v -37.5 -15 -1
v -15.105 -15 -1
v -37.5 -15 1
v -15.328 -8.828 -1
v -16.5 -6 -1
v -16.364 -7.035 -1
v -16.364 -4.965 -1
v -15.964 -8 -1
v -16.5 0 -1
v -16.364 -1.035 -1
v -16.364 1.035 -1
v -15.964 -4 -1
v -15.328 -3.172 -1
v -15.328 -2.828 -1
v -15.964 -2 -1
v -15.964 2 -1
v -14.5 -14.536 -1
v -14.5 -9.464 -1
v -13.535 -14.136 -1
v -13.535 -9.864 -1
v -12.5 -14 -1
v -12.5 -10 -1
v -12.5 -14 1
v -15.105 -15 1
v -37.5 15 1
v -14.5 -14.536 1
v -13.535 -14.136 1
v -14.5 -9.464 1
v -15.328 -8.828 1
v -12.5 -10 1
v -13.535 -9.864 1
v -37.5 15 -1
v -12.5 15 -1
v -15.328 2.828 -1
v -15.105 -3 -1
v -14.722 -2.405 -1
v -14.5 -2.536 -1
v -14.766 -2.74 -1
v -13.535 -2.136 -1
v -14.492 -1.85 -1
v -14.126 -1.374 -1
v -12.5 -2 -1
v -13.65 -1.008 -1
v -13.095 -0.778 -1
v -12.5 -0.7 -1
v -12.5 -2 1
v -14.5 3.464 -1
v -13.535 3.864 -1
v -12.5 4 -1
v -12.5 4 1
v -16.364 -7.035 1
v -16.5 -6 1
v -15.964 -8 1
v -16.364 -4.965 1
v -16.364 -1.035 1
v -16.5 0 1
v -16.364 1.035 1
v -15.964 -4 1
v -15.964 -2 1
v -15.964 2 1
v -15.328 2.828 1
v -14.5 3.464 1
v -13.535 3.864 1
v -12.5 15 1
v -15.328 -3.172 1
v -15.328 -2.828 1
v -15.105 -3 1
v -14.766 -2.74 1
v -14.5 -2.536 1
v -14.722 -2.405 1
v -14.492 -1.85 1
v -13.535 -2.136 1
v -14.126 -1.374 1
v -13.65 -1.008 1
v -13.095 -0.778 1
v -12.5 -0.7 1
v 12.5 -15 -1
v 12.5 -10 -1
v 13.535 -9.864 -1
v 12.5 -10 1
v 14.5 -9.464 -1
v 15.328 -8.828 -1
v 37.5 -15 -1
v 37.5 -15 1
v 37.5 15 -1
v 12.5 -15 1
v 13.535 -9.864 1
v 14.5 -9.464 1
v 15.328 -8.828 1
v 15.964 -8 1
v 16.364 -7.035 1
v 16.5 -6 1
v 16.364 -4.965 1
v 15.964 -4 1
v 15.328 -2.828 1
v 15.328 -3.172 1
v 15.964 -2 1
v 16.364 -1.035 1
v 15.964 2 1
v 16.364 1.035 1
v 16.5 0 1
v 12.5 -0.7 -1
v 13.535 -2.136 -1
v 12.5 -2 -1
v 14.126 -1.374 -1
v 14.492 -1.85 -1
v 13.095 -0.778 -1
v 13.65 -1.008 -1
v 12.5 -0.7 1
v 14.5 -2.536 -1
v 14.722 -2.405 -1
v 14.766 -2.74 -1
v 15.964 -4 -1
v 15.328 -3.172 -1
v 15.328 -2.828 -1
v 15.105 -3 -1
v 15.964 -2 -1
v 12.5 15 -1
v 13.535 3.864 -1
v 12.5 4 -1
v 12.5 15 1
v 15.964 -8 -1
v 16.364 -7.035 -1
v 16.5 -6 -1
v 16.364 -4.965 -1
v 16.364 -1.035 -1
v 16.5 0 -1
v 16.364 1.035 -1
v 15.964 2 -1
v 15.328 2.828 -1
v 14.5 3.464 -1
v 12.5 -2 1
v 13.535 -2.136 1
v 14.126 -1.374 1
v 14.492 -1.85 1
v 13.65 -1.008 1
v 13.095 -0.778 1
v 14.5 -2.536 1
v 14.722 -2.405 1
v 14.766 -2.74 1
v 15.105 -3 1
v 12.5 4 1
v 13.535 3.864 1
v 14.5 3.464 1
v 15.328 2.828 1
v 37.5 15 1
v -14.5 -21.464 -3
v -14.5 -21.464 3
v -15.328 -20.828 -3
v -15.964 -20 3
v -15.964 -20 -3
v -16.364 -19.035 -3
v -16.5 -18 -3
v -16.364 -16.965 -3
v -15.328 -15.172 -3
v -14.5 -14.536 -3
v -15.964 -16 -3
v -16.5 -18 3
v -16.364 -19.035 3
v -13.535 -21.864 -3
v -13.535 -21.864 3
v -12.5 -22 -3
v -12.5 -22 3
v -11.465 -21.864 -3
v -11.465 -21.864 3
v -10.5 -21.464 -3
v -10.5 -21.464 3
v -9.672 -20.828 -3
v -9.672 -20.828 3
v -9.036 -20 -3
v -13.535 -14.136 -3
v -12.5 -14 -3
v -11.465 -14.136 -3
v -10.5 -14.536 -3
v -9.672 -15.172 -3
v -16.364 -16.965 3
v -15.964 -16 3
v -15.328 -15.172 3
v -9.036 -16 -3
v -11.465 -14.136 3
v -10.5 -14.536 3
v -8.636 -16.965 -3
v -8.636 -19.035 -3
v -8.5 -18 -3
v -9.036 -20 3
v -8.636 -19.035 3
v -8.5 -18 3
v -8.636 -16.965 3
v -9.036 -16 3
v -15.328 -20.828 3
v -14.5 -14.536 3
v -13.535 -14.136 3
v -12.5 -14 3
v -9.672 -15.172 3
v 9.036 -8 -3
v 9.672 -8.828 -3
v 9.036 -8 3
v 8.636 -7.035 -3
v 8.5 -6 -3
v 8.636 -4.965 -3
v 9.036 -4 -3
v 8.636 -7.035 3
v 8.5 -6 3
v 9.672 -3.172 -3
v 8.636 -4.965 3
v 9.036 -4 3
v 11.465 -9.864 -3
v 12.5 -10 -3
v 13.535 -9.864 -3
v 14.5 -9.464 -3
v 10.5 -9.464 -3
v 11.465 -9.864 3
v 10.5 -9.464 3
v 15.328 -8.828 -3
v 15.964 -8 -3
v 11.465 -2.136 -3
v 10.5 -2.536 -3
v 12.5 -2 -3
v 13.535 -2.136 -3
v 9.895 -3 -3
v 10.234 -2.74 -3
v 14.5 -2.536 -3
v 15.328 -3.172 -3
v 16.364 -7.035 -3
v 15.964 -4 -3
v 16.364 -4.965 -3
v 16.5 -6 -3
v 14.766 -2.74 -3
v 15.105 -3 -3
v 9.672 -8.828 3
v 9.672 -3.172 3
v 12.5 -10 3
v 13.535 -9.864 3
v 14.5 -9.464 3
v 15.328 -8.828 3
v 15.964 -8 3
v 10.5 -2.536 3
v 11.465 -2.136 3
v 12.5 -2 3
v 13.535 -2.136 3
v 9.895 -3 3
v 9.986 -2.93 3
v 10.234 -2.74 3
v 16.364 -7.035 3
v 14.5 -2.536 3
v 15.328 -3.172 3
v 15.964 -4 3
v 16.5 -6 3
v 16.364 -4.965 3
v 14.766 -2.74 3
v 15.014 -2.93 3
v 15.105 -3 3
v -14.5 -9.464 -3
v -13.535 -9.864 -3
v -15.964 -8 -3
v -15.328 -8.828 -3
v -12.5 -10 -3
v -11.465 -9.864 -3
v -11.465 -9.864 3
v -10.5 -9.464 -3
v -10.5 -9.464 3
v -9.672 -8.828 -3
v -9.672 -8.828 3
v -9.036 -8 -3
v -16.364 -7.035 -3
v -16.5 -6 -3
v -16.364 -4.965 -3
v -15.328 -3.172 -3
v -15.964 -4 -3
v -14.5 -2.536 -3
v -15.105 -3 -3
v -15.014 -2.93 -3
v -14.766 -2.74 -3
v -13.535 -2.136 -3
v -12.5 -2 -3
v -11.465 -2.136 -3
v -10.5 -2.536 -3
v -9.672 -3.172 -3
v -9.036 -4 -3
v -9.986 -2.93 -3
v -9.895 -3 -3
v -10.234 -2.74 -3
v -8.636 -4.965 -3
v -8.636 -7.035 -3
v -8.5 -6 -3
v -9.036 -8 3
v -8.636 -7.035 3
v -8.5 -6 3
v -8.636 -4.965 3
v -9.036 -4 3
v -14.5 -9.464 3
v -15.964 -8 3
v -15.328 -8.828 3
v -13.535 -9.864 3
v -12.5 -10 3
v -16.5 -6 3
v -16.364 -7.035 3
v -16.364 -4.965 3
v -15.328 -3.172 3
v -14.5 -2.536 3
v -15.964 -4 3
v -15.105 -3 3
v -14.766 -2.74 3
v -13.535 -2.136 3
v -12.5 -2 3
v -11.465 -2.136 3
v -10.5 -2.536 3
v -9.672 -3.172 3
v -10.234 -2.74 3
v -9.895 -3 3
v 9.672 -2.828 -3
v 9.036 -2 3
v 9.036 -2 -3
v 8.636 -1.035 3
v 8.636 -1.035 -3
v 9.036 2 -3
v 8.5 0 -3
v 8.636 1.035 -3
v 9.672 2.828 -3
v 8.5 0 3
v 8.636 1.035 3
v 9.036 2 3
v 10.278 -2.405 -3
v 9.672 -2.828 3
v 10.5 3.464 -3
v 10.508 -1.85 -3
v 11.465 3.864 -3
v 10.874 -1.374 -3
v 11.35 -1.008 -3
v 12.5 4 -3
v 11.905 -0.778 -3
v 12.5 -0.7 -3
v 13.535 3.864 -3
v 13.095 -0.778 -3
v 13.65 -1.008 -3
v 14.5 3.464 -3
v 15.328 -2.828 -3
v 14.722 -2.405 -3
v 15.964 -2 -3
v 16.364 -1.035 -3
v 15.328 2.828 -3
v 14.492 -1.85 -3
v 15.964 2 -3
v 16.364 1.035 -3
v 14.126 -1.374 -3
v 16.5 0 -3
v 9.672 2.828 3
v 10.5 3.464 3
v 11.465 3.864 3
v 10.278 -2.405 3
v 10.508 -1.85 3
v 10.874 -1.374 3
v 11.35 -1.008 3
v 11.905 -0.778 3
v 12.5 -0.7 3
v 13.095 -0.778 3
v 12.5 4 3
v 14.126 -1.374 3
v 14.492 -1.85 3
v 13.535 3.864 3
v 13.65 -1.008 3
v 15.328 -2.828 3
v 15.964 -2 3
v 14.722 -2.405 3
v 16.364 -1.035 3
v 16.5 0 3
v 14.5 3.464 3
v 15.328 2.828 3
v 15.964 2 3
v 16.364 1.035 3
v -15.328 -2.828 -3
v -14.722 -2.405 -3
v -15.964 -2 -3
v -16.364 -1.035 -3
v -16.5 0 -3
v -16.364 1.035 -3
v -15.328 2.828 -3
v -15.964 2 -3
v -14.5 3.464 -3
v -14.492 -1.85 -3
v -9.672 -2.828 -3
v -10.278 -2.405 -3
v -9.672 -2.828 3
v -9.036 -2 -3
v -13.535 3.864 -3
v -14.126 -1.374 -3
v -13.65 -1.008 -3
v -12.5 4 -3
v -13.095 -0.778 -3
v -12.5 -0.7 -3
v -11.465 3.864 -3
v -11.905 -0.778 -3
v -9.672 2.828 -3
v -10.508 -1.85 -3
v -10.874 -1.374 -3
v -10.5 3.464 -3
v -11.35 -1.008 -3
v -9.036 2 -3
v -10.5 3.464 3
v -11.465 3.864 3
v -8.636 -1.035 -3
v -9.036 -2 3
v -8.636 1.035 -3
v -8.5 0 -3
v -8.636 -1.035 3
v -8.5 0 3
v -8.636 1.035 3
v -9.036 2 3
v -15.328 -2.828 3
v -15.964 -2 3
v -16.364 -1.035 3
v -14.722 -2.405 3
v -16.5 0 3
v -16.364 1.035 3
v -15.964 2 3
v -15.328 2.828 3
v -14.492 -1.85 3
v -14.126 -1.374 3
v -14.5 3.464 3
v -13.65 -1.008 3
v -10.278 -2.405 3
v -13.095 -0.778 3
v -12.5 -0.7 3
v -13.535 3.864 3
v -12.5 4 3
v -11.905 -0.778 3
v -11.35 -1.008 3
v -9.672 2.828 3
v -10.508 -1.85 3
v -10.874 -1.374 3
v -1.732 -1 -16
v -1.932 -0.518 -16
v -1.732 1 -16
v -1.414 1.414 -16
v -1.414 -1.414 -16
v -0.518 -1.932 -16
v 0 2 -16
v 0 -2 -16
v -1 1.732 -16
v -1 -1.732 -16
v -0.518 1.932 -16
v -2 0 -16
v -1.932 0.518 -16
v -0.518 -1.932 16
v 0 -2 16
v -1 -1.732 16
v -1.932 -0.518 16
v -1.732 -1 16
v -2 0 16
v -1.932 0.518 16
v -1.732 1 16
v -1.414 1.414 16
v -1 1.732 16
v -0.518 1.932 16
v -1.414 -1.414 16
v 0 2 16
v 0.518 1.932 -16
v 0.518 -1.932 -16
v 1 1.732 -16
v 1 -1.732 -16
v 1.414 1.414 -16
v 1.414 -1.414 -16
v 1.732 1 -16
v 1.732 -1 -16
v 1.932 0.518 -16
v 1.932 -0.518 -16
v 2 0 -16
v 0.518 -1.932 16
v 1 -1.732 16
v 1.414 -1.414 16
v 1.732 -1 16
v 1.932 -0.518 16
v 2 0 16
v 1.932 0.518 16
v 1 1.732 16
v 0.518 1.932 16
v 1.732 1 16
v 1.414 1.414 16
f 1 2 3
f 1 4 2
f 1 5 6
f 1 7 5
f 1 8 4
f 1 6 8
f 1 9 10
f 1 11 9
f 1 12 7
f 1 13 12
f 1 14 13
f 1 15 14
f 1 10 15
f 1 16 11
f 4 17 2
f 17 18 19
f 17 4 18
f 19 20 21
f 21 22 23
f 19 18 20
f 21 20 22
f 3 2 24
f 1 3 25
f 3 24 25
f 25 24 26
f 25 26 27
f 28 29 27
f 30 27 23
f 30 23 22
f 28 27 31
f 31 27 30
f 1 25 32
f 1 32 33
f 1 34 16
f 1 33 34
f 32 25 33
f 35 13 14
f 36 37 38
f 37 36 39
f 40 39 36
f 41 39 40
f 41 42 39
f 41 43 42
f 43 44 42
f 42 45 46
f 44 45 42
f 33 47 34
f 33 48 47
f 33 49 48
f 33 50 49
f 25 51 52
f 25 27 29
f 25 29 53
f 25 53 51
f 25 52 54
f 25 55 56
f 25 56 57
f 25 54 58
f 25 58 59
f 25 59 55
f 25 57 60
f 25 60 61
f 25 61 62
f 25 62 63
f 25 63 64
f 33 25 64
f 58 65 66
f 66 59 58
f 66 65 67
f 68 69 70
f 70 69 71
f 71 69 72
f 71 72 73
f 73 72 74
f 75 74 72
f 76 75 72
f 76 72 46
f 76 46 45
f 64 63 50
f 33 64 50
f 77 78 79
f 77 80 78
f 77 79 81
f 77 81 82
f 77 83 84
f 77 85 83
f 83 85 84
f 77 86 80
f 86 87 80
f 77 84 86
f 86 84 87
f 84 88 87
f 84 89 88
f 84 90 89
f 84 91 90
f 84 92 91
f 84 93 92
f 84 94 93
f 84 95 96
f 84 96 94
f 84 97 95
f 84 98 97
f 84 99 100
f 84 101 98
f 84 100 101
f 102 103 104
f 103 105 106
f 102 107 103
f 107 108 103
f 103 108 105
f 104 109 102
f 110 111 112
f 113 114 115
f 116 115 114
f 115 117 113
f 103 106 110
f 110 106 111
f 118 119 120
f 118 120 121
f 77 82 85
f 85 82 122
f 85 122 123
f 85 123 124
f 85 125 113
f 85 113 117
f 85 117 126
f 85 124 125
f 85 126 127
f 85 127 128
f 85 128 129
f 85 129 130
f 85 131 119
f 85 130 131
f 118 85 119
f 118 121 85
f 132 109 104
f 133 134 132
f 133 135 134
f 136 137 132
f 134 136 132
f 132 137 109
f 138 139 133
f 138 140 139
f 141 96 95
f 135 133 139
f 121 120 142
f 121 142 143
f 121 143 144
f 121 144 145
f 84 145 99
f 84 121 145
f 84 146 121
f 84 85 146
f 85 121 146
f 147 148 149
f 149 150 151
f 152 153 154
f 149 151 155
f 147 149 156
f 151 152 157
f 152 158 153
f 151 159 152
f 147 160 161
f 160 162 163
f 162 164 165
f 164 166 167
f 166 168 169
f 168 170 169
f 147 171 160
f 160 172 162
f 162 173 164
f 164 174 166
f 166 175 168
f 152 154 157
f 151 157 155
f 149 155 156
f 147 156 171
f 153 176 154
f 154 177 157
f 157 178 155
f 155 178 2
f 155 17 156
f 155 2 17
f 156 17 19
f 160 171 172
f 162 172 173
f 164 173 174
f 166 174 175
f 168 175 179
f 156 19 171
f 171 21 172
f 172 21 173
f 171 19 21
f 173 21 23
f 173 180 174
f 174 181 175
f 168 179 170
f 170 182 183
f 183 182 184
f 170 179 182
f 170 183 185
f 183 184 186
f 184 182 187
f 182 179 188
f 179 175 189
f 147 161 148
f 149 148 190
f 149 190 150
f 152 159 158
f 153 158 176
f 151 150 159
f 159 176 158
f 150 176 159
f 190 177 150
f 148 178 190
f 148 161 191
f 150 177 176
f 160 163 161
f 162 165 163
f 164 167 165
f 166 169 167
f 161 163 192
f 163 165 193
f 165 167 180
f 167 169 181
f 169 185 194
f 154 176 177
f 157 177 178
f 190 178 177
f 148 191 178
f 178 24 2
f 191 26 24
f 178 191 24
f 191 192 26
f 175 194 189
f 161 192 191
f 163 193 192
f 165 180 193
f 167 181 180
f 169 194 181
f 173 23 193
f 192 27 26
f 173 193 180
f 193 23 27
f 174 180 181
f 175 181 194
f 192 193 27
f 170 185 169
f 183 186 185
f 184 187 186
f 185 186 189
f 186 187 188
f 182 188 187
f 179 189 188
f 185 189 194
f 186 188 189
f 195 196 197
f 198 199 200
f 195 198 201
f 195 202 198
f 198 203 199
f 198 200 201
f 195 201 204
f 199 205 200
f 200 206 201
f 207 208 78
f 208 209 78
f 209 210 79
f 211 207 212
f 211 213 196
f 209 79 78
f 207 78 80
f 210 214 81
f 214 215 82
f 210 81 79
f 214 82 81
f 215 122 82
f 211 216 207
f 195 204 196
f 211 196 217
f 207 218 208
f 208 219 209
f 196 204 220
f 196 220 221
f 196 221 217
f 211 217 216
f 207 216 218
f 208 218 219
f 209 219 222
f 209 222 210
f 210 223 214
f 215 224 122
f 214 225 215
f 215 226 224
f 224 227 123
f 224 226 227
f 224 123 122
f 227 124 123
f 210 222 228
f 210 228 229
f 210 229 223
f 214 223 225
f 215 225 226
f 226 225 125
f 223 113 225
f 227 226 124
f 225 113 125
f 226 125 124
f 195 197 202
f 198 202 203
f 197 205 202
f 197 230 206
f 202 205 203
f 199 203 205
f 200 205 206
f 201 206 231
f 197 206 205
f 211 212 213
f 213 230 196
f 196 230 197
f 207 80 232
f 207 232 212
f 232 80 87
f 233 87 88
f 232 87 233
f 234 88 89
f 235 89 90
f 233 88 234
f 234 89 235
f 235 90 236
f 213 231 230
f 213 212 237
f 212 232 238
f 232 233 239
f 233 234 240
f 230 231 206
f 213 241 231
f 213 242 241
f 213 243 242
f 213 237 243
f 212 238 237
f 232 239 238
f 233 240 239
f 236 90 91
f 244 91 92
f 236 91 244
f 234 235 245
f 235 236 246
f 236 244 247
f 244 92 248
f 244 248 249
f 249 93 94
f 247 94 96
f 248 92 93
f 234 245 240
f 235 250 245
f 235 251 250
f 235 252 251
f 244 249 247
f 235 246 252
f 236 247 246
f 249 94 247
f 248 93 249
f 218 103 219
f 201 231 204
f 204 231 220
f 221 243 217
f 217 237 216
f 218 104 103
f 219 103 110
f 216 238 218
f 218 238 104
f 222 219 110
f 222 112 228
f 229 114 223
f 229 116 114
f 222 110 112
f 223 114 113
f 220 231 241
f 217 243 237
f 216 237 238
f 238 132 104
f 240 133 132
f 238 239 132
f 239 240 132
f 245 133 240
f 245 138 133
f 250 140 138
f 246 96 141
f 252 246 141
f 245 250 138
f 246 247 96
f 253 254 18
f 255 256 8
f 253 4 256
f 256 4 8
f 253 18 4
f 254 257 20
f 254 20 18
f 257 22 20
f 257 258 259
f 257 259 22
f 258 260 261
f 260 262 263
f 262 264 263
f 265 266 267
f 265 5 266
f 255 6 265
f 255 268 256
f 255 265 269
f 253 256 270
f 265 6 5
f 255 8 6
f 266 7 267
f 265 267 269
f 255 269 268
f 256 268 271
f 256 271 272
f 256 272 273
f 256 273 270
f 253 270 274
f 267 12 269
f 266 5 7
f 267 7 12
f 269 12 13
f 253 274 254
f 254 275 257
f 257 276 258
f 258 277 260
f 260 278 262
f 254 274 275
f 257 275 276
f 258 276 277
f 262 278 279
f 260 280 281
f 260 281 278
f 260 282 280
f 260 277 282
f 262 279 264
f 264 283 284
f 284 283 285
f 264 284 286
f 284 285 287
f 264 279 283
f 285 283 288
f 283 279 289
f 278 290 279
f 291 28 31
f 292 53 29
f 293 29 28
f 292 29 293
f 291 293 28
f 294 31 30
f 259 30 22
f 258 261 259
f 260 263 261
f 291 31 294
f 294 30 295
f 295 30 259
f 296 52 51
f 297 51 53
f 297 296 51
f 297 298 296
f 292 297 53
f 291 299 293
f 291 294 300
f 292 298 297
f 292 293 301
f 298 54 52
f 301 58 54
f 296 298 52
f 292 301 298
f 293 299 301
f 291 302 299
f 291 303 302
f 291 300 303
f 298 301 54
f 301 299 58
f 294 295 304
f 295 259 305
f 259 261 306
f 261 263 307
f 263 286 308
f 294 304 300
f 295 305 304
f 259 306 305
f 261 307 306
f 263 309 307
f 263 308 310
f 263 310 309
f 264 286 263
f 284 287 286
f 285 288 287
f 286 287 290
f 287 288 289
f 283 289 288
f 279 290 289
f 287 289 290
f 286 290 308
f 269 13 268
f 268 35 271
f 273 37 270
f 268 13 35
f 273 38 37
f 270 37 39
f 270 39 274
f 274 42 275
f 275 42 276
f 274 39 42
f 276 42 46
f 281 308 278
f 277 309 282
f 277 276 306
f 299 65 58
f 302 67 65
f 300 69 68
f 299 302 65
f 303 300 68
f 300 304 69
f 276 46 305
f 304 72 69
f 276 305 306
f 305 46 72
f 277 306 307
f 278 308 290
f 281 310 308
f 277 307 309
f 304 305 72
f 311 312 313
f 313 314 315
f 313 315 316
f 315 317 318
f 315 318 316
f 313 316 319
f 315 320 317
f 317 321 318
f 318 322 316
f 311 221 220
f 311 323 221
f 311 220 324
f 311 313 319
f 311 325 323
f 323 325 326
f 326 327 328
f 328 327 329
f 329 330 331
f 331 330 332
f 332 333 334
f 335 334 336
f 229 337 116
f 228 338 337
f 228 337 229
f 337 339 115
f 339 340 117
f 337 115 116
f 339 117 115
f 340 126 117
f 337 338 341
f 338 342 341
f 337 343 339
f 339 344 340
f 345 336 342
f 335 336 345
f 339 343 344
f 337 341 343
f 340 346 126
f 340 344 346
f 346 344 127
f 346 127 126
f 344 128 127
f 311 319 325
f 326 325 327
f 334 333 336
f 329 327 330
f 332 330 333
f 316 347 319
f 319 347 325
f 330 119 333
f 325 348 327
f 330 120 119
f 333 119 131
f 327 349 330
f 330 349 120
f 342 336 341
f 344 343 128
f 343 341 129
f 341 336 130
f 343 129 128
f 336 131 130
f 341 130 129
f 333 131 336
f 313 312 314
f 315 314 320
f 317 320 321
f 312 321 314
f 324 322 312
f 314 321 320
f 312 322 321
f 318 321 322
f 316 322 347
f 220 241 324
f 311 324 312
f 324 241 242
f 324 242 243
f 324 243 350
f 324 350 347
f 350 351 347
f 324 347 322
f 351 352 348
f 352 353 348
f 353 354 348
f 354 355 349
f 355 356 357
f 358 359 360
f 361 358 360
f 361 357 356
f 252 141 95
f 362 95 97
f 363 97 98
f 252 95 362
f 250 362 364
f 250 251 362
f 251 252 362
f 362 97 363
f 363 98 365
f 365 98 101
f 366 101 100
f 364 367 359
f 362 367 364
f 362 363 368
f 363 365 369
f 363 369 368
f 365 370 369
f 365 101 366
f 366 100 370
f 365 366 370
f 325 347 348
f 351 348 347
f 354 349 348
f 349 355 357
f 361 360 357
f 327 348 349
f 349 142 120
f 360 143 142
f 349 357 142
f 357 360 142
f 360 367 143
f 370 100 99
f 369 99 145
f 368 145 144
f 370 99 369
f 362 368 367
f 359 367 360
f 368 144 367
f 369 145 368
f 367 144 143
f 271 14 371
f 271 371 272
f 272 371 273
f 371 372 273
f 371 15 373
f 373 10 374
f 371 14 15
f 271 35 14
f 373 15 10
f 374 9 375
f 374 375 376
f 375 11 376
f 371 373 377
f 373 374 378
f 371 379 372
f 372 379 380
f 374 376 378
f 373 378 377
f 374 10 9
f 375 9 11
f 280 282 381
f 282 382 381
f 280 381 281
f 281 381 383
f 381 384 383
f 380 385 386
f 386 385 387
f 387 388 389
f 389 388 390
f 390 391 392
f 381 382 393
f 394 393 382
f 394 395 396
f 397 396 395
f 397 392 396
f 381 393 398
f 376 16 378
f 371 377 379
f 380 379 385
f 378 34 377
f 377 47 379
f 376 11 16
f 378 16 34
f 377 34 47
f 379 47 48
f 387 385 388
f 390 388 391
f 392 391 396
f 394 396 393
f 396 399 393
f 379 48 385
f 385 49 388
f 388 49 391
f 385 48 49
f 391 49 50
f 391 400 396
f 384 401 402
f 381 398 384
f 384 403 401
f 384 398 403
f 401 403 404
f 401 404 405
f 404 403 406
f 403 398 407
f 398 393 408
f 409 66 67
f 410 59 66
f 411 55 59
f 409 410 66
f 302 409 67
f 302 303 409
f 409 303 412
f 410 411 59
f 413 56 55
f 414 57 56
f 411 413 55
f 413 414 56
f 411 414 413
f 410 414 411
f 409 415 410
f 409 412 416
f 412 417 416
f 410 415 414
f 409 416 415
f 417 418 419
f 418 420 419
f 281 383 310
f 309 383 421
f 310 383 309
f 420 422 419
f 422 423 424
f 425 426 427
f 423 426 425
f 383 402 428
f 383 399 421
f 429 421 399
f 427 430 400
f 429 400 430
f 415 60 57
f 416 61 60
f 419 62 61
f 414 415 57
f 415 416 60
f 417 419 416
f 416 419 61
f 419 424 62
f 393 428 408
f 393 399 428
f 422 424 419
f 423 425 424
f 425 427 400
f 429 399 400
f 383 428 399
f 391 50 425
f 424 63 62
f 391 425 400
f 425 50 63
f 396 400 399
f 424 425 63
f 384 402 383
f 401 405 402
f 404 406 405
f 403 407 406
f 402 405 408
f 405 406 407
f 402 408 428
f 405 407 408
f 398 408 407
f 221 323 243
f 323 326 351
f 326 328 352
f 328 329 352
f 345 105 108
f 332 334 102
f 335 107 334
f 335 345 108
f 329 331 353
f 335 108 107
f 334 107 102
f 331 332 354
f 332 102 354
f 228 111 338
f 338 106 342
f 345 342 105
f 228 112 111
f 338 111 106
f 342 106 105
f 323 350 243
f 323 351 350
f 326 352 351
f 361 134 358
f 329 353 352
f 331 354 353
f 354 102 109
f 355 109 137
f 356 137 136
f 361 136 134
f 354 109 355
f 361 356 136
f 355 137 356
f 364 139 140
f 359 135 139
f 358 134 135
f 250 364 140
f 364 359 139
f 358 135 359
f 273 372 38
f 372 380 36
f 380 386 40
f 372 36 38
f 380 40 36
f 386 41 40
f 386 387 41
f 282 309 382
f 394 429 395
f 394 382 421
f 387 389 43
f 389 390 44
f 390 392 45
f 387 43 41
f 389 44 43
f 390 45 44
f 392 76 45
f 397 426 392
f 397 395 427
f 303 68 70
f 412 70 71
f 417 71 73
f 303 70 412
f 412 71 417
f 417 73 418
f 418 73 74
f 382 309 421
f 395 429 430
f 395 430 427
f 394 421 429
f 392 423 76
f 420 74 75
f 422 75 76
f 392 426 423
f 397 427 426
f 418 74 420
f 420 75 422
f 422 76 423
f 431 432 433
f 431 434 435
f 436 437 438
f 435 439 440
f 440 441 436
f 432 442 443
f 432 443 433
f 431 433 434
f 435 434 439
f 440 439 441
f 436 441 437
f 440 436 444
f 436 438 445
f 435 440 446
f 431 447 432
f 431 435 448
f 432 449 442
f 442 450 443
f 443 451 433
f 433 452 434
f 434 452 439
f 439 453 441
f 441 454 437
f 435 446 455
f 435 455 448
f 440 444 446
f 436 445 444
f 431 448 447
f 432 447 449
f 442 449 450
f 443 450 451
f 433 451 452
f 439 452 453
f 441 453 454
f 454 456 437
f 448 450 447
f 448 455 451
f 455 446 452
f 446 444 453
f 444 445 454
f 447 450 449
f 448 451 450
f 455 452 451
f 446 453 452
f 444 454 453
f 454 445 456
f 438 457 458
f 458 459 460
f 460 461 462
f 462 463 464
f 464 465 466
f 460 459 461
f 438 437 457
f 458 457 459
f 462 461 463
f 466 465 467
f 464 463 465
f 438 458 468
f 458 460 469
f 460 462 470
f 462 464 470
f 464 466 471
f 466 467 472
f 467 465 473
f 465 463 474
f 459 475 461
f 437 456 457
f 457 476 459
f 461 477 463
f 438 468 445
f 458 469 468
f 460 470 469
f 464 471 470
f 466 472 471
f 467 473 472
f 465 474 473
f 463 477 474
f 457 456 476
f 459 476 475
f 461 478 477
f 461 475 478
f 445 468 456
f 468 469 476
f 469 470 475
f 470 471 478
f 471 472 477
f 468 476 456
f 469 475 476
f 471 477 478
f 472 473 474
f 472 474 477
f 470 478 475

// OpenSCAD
// 定数定義
$fn = 24; // 細かさを調整

// ピン軸の長さと直径
pin_length = 32;
pin_diameter = 4;

// 板（leaf）の寸法
leaf_length = 30; // Y方向
leaf_width = 25;  // X方向
leaf_thickness = 2; // Z方向

// knuckleの寸法
knuckle_outer_dia = 8;
knuckle_inner_hole_dia = 4.6;
knuckle_height = 6;

// M3皿穴の寸法
sink_hole_outer_dia = 6;
sink_hole_depth = 1; // テーパーの深さ
sink_hole_drill_dia = 3.2;

// knuckleの位置（左板：外側2個 + 中央1個 / 右板：中間2個）
left_knuckle_positions = [-18, -6, 0]; // Y方向
right_knuckle_positions = [-6, 0];     // Y方向

// 板の位置（左板X負、右板X正）
leaf_x_offset = leaf_width / 2;

// ピン軸の中心をY軸に配置
module pin() {
    cylinder(r=pin_diameter/2, h=pin_length, center=true);
}

// knuckleの作成（外径8mm、内径4.6mm）
module knuckle(y_pos) {
    difference() {
        cylinder(r=knuckle_outer_dia/2, h=knuckle_height, center=true, $fn=$fn);
        translate([0, y_pos - knuckle_height/2, 0])
            cylinder(r=knuckle_inner_hole_dia/2, h=knuckle_height, center=true, $fn=$fn);
    }
}

// 板（leaf）の作成
module leaf(x_offset) {
    // パーツ本体
    translate([x_offset, 0, 0])
        cube([leaf_width, leaf_length, leaf_thickness], center=true);

    // M3皿穴
    for (y = [-12, -4, 4, 12]) { // 穴ピッチ8mm間隔（左板のY=-12,-4,4,12など）
        translate([x_offset, y, 0])
            difference() {
                cylinder(r=sink_hole_outer_dia/2, h=sink_hole_depth, center=true, $fn=$fn);
                cylinder(r=sink_hole_drill_dia/2, h=sink_hole_depth + 1, center=true, $fn=$fn);
            }
    }
}

// ピン軸の配置
pin();

// 左板（左側）
translate([-leaf_x_offset, 0, 0]) leaf(-leaf_x_offset);

// 右板（右側）
translate([leaf_x_offset, 0, 0]) leaf(leaf_x_offset);

// knuckleの配置（左板）
for (y = left_knuckle_positions) {
    translate([ -leaf_x_offset, y, 0 ]) knuckle(y);
}

// knuckleの配置（右板）
for (y = right_knuckle_positions) {
    translate([ leaf_x_offset, y, 0 ]) knuckle(y);
}
